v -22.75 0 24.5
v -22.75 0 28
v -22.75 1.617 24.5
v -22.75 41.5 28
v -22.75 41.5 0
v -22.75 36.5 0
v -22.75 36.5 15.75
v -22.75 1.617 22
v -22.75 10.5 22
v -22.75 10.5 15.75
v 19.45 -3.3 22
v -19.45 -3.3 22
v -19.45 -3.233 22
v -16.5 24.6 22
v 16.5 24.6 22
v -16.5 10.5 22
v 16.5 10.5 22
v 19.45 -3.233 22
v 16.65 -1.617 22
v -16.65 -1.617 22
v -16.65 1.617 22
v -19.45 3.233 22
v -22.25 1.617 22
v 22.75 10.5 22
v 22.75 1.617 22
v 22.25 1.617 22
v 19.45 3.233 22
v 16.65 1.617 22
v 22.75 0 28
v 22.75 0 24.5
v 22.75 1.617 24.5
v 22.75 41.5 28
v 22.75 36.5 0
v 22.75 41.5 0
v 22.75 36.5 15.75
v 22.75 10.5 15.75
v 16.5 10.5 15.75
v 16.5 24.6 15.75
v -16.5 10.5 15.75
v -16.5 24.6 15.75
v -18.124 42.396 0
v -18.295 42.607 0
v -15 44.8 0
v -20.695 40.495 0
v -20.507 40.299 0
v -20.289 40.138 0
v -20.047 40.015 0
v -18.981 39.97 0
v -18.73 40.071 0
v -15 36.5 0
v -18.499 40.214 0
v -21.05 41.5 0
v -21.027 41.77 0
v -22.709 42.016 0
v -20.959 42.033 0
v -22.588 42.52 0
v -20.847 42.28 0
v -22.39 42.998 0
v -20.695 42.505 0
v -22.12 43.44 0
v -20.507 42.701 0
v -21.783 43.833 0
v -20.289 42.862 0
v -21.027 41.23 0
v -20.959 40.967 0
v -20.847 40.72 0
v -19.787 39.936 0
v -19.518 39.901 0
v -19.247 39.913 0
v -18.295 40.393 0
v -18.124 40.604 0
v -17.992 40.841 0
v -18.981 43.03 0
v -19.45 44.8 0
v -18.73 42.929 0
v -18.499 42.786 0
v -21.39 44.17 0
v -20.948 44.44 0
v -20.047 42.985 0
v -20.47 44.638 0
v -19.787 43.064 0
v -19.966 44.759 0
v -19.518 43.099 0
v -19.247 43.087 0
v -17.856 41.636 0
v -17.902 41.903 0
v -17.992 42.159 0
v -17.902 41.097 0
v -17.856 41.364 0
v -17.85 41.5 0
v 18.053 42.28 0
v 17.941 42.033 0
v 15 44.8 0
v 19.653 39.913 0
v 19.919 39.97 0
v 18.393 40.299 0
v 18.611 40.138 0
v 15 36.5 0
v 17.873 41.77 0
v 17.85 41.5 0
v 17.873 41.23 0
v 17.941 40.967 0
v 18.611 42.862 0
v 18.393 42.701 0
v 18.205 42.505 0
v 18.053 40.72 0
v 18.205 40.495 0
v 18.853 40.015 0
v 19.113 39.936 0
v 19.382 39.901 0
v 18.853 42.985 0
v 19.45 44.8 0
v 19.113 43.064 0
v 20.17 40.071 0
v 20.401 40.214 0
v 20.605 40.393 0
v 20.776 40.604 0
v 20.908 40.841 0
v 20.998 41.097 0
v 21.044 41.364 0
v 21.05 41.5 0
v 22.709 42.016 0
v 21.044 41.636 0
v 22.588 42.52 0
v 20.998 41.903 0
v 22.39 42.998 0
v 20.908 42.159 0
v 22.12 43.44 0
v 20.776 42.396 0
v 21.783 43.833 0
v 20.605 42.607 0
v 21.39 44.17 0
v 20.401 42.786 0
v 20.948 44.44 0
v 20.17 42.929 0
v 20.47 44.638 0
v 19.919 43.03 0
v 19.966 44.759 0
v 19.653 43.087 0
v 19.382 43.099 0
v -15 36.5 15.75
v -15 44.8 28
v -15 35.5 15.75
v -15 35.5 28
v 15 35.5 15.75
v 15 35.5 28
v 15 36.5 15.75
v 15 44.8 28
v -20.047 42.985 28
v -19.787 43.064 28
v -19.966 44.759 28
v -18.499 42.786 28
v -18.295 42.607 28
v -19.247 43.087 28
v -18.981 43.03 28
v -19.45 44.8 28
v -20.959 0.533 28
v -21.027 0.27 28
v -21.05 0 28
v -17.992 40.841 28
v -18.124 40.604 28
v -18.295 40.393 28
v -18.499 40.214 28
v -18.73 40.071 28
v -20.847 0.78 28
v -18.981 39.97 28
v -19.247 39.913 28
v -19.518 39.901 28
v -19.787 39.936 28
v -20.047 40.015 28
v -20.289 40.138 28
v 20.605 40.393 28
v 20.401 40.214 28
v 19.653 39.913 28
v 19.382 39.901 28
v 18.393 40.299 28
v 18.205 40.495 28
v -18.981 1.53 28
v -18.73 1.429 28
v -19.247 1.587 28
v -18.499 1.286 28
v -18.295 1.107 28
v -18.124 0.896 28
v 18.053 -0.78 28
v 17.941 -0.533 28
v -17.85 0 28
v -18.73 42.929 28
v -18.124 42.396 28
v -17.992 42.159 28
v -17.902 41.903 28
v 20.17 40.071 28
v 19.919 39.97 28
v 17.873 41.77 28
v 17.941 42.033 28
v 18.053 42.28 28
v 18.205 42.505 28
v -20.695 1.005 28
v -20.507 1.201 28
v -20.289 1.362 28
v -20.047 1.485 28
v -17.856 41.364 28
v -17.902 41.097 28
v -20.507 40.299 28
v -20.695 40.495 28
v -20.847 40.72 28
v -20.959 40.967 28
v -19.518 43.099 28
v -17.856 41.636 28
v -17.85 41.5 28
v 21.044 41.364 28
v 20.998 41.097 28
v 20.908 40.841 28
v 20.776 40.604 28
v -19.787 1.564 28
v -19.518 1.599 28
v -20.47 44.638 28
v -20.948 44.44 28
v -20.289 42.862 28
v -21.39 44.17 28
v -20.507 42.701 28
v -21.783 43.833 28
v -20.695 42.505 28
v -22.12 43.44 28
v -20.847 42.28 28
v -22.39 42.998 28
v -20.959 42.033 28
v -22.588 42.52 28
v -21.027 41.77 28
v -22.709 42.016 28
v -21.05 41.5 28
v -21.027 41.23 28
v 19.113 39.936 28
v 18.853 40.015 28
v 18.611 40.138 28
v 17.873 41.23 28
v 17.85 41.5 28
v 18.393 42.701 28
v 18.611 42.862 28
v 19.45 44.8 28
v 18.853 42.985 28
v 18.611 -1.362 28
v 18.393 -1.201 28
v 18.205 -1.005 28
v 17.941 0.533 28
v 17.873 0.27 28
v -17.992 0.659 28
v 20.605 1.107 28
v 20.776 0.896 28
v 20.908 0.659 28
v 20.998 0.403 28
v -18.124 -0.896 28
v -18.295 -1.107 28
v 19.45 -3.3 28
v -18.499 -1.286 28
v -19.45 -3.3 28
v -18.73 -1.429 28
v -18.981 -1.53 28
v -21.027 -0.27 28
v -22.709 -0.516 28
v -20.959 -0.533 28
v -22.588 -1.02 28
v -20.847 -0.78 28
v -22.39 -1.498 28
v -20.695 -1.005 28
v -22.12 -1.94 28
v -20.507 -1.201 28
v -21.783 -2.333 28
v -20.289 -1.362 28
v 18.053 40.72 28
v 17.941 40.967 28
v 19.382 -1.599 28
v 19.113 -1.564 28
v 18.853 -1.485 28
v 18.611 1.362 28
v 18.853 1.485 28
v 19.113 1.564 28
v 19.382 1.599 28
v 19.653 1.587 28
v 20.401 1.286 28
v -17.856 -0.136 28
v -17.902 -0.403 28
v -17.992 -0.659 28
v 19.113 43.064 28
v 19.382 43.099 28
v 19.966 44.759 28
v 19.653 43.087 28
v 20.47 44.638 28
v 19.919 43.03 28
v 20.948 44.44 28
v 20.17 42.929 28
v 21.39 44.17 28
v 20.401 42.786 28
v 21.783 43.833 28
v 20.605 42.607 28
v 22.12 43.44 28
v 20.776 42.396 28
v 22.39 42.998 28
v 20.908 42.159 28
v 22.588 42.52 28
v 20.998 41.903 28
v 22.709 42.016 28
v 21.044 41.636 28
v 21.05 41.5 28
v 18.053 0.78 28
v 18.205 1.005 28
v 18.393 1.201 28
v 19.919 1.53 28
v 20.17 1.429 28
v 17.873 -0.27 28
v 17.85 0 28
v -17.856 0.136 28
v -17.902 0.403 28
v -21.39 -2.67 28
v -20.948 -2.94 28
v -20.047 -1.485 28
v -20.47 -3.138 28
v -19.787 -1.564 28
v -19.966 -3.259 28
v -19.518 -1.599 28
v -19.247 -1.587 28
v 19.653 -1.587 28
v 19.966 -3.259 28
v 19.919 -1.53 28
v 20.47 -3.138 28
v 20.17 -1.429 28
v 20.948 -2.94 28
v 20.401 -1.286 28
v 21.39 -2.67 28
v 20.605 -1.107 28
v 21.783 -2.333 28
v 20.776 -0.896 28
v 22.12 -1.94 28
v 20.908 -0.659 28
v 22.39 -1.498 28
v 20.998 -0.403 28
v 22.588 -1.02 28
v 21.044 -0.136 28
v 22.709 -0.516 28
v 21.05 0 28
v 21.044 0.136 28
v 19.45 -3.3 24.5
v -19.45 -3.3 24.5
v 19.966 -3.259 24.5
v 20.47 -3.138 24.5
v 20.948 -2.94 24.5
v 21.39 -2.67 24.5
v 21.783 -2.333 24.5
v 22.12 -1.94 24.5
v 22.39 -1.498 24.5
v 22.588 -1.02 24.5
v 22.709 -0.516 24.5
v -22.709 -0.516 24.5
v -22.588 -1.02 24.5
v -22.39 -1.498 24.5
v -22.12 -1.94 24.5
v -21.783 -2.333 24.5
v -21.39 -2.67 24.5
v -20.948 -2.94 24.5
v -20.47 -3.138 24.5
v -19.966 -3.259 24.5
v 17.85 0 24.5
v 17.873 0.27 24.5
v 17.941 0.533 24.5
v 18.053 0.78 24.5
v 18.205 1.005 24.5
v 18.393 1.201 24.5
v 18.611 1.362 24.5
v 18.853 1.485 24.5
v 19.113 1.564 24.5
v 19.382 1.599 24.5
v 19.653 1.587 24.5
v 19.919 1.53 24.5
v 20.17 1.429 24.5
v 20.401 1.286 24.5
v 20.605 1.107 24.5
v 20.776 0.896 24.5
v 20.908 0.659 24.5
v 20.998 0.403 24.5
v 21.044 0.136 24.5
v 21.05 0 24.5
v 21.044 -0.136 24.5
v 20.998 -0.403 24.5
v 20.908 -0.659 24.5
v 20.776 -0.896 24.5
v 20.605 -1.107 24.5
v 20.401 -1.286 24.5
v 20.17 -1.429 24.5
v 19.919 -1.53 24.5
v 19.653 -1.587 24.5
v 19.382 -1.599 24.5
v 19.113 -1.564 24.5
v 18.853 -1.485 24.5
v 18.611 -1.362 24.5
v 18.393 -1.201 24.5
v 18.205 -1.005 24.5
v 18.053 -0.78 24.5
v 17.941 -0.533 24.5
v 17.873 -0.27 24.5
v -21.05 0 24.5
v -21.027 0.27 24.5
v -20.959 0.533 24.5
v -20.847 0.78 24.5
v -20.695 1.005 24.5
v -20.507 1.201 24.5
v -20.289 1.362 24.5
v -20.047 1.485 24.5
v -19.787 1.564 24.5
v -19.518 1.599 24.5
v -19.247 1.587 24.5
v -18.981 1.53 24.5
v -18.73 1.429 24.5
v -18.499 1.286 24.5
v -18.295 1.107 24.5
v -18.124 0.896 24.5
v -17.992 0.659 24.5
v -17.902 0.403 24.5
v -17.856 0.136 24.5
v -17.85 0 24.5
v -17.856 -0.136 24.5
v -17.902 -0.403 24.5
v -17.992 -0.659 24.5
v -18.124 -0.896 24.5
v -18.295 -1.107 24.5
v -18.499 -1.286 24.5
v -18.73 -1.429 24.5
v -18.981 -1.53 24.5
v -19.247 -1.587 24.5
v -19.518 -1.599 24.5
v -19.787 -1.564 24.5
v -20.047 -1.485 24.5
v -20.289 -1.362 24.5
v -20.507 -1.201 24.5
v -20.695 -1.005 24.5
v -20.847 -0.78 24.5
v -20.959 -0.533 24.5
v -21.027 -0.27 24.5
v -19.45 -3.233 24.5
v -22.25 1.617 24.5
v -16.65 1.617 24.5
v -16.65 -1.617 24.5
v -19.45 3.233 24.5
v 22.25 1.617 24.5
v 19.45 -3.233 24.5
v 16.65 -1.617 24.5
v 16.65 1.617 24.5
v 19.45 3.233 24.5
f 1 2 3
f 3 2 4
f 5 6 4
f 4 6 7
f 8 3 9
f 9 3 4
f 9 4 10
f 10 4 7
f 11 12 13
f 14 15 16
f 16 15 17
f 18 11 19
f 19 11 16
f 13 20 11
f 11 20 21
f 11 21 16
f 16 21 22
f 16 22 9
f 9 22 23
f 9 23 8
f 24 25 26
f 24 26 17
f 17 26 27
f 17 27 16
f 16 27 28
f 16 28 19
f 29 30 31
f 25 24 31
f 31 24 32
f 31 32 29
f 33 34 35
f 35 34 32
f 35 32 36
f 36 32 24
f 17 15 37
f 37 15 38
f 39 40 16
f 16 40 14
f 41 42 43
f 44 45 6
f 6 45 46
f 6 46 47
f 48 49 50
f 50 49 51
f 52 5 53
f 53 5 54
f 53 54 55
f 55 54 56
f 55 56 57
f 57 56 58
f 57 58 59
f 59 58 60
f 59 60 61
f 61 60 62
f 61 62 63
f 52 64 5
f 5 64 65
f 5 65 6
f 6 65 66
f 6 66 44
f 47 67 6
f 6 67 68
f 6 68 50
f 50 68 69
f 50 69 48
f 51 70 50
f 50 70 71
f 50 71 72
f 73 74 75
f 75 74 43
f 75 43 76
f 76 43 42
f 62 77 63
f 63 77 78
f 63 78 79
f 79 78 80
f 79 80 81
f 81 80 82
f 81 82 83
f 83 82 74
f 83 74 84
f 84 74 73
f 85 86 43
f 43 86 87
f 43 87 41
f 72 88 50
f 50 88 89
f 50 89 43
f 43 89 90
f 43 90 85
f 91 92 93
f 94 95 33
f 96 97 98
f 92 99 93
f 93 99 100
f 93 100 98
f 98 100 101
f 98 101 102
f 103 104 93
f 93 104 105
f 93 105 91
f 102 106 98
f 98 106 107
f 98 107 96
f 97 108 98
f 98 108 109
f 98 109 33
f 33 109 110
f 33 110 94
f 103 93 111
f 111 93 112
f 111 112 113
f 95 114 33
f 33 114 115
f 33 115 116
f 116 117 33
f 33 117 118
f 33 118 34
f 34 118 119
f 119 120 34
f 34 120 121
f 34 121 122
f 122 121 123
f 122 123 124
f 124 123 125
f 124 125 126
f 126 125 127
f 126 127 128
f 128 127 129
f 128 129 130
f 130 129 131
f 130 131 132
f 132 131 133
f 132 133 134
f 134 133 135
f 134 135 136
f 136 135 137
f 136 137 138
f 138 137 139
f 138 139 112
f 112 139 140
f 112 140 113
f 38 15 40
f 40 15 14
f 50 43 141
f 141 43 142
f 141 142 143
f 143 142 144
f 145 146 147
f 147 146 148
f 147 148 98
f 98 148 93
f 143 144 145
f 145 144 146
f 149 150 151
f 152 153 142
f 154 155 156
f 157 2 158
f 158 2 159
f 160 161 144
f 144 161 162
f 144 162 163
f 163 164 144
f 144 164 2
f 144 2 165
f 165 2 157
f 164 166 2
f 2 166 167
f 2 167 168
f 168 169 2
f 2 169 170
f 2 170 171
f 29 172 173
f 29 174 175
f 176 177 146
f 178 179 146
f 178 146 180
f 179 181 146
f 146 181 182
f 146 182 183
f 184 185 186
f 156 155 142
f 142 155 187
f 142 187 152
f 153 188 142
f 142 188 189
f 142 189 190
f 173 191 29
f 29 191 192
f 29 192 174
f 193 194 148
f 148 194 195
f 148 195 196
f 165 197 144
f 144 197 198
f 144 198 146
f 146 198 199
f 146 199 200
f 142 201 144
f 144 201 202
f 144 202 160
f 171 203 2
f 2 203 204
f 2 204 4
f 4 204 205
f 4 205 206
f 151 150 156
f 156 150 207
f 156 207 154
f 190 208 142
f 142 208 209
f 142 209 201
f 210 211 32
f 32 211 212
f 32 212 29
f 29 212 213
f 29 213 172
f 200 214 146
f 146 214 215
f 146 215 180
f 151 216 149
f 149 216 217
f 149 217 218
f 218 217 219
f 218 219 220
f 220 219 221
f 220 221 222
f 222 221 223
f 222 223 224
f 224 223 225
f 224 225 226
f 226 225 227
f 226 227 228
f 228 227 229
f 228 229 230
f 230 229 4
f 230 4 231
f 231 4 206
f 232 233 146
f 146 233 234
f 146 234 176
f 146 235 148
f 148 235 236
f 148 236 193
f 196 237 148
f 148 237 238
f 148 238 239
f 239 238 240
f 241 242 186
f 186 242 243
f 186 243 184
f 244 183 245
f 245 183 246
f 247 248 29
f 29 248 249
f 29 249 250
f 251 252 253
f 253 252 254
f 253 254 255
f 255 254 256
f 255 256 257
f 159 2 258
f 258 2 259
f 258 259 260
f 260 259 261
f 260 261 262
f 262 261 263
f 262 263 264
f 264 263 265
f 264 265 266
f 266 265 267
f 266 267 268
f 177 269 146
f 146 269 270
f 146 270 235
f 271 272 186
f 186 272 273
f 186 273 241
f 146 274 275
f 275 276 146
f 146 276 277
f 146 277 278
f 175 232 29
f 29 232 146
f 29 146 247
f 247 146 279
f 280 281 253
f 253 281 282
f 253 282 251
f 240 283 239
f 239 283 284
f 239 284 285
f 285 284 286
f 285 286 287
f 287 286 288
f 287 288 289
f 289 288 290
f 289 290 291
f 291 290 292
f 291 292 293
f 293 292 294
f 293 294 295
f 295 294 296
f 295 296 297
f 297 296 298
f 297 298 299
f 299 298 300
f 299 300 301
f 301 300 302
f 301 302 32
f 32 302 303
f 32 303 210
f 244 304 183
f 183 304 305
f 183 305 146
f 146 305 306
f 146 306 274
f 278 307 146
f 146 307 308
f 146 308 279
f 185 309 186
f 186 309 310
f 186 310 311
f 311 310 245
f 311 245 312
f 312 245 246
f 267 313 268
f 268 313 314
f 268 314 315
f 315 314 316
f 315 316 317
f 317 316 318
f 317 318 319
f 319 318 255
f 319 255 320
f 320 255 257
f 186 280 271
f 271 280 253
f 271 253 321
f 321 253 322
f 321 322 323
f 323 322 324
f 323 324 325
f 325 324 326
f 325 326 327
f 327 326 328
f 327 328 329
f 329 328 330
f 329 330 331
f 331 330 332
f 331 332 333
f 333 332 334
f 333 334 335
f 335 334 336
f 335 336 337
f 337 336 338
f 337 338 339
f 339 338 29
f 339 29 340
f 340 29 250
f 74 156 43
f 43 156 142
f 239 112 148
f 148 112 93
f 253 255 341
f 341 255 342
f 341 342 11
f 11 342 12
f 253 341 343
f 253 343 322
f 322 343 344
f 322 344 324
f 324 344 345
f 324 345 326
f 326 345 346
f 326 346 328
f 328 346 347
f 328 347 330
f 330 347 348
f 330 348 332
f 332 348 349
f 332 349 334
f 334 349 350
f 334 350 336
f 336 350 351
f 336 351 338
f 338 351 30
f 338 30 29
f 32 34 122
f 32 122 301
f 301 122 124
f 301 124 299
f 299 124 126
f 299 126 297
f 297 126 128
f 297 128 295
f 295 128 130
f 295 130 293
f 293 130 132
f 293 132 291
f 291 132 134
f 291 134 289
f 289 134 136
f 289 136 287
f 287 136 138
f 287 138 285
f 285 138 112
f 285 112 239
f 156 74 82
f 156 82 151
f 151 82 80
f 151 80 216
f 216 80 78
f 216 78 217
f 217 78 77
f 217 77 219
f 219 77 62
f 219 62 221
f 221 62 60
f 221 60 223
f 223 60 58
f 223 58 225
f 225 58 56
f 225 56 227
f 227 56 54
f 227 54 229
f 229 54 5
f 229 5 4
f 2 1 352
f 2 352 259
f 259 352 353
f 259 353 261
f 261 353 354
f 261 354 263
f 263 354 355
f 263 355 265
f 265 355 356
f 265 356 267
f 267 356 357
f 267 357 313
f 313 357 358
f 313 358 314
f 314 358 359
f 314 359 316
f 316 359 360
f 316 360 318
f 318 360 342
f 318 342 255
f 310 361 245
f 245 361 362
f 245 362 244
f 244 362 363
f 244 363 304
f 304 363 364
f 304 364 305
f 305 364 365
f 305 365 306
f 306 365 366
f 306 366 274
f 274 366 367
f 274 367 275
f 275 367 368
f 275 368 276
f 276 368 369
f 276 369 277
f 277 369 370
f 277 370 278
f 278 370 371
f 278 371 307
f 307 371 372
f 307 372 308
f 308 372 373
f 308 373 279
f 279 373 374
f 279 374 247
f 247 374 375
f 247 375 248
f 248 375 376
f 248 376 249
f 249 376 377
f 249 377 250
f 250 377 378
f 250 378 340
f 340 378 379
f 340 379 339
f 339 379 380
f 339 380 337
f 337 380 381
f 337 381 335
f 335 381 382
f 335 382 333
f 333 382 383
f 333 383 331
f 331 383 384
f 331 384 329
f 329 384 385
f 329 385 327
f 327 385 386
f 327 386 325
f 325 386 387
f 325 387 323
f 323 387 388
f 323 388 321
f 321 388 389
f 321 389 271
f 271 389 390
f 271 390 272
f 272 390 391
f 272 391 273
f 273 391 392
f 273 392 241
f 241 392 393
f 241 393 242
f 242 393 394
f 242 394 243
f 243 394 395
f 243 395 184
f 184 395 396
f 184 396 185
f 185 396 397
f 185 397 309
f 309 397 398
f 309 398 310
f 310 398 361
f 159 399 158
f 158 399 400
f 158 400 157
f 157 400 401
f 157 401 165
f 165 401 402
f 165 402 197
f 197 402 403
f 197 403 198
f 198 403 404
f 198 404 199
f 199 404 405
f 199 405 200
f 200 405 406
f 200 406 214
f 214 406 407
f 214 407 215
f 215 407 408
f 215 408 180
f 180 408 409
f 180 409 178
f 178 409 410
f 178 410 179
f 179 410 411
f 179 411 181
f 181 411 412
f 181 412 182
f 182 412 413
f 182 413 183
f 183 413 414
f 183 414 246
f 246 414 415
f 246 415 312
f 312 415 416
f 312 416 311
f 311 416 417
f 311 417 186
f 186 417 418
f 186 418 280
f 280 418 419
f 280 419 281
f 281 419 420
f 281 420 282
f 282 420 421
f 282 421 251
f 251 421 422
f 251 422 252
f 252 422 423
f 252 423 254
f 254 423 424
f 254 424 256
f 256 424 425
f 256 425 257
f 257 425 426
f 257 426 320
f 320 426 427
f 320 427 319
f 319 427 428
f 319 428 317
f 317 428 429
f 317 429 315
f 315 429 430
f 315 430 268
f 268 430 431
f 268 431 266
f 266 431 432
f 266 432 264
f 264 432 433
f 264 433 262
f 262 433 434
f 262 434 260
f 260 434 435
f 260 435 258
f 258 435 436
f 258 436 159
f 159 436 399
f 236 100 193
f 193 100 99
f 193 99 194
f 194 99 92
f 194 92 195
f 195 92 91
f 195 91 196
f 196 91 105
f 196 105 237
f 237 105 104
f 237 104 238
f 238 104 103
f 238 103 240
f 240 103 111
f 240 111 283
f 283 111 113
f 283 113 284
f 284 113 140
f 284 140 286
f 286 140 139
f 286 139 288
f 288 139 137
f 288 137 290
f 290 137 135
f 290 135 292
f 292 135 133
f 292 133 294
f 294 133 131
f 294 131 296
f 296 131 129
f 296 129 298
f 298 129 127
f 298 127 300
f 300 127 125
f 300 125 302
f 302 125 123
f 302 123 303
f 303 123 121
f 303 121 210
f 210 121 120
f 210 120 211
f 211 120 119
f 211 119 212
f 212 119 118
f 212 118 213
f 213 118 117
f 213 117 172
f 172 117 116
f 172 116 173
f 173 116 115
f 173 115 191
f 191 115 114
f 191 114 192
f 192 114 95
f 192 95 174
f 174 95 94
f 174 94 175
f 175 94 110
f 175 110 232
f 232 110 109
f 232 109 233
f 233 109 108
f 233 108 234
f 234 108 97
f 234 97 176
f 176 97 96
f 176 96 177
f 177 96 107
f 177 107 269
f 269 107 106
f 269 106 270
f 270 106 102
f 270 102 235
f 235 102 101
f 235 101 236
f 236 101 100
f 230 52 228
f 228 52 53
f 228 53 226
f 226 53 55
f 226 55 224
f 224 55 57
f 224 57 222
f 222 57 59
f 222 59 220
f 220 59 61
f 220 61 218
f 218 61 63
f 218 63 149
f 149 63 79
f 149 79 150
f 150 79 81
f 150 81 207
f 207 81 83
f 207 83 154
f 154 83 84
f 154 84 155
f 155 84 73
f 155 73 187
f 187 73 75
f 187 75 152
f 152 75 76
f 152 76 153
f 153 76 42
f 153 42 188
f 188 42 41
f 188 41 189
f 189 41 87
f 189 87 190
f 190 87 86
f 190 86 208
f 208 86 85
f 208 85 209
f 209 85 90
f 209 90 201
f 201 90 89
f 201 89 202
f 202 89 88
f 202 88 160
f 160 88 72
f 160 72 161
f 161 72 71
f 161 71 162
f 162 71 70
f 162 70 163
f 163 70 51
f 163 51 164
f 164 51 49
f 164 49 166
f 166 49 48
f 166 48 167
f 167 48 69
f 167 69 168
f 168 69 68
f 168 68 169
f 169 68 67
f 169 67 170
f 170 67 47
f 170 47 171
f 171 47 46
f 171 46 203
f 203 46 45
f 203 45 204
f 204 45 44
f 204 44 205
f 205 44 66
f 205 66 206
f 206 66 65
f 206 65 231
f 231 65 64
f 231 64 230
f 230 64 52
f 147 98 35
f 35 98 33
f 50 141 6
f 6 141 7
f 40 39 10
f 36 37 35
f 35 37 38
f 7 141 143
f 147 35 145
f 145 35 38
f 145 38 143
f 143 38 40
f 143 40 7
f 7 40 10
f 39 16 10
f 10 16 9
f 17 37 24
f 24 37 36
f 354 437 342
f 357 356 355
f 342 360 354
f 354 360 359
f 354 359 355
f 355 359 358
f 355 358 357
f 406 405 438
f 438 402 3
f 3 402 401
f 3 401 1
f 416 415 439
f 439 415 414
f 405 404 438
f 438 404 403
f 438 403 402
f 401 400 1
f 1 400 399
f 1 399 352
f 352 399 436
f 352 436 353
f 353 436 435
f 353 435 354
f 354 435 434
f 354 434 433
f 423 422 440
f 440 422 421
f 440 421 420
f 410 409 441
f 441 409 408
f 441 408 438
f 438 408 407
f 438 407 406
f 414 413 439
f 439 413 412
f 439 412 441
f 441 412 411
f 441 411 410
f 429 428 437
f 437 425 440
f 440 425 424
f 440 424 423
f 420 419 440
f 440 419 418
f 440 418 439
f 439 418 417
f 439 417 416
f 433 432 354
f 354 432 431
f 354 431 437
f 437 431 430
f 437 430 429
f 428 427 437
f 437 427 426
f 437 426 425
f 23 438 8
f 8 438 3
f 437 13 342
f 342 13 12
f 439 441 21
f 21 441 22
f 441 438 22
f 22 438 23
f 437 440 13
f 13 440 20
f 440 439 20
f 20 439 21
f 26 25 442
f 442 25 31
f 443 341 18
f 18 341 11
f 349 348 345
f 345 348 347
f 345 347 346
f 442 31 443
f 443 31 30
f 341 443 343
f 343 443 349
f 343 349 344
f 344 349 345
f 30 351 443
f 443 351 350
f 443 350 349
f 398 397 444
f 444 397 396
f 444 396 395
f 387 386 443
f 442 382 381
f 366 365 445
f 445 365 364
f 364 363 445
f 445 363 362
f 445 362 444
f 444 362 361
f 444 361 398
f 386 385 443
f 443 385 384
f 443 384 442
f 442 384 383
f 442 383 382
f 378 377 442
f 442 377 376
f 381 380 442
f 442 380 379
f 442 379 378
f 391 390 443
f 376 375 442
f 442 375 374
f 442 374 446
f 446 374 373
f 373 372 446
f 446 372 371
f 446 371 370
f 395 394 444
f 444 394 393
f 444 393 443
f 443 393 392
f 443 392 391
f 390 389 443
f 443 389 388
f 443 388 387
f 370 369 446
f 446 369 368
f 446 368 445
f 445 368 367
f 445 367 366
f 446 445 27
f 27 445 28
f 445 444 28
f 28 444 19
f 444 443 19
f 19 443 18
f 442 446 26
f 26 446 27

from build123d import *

# Parameters (mm, degrees)
SKICA1_R                 = 1.6
P_IDAT_VYSUNUT_M1_DEPTH  = 28
SKICA5_W                 = 33
SKICA5_H                 = 28.9
ODEBRAT_VYSUNUT_M3_DEPTH = 22
SKICA7_W                 = 30
SKICA7_H                 = 10.3
ODEBRAT_VYSUNUT_M5_DEPTH = 29
SKICA6_W                 = 47.5
SKICA6_H                 = 26
ODEBRAT_VYSUNUT_M4_DEPTH = 15.75
SKICA8_W                 = 50
SKICA8_H                 = 16
ODEBRAT_VYSUNUT_M6_DEPTH = 22
ODEBRAT_VYSUNUT_M7_DEPTH = 2.5


with BuildPart() as part:
    # Skica1 → Přidat vysunutím1 (new body)
    with BuildSketch(Plane.XY):
        with BuildLine():
            Line((19.45, -3.3), (-19.45, -3.3))
            ThreePointArc((-19.45, -3.3), (-21.783452378, -2.333452378), (-22.75, 0))
            Line((-22.75, 0), (-22.75, 41.5))
            ThreePointArc((-22.75, 41.5), (-21.783452378, 43.833452378), (-19.45, 44.8))
            Line((-19.45, 44.8), (19.45, 44.8))
            ThreePointArc((19.45, 44.8), (21.783452378, 43.833452378), (22.75, 41.5))
            Line((22.75, 41.5), (22.75, 0))
            ThreePointArc((22.75, 0), (21.783452378, -2.333452378), (19.45, -3.3))
        make_face()
        with Locations((19.45, 0)):
            Circle(SKICA1_R, mode=Mode.SUBTRACT)
        with Locations((-19.45, 0)):
            Circle(SKICA1_R, mode=Mode.SUBTRACT)
        with Locations((19.45, 41.5)):
            Circle(SKICA1_R, mode=Mode.SUBTRACT)
        with Locations((-19.45, 41.5)):
            Circle(SKICA1_R, mode=Mode.SUBTRACT)
    extrude(amount=P_IDAT_VYSUNUT_M1_DEPTH)

    # Skica5 → Odebrat vysunutím3 (cut)
    with BuildSketch(Plane.XY):
        with Locations((0, 10.15)):
            Rectangle(SKICA5_W, SKICA5_H)
    extrude(amount=ODEBRAT_VYSUNUT_M3_DEPTH, mode=Mode.SUBTRACT)

    # Skica7 → Odebrat vysunutím5 (cut, through all)
    with BuildSketch(Plane.XY):
        with Locations((0, 40.65)):
            Rectangle(SKICA7_W, SKICA7_H)
    extrude(amount=ODEBRAT_VYSUNUT_M5_DEPTH, mode=Mode.SUBTRACT)

    # Skica6 → Odebrat vysunutím4 (cut)
    with BuildSketch(Plane.XY):
        with Locations((0, 23.5)):
            Rectangle(SKICA6_W, SKICA6_H)
    extrude(amount=ODEBRAT_VYSUNUT_M4_DEPTH, mode=Mode.SUBTRACT)

    # Skica8 → Odebrat vysunutím6 (cut)
    with BuildSketch(Plane.XY):
        with Locations((0, 2.5)):
            Rectangle(SKICA8_W, SKICA8_H)
    extrude(amount=ODEBRAT_VYSUNUT_M6_DEPTH, mode=Mode.SUBTRACT)

    # Skica9 → Odebrat vysunutím7 (cut)
    with BuildSketch(Plane.XY.offset(22)):
        Polygon((-19.45, -3.233161507), (-19.45, -4.03299561), (-23.966905363, -4.03299561), (-23.966905363, 1.616580754), (-22.25, 1.616580754), (-19.45, 3.233161507), (-16.65, 1.616580754), (-16.65, -1.616580754), align=None)
    odebrat_vysunut_m7 = extrude(amount=ODEBRAT_VYSUNUT_M7_DEPTH, mode=Mode.SUBTRACT)

    # Zrcadlit1: Odebrat vysunutím7 across plane
    add(odebrat_vysunut_m7.mirror(Plane(origin=(0, 0, 0), x_dir=(0, 0, 1), z_dir=(1, 0, 0))), mode=Mode.SUBTRACT)


solid = part.part
